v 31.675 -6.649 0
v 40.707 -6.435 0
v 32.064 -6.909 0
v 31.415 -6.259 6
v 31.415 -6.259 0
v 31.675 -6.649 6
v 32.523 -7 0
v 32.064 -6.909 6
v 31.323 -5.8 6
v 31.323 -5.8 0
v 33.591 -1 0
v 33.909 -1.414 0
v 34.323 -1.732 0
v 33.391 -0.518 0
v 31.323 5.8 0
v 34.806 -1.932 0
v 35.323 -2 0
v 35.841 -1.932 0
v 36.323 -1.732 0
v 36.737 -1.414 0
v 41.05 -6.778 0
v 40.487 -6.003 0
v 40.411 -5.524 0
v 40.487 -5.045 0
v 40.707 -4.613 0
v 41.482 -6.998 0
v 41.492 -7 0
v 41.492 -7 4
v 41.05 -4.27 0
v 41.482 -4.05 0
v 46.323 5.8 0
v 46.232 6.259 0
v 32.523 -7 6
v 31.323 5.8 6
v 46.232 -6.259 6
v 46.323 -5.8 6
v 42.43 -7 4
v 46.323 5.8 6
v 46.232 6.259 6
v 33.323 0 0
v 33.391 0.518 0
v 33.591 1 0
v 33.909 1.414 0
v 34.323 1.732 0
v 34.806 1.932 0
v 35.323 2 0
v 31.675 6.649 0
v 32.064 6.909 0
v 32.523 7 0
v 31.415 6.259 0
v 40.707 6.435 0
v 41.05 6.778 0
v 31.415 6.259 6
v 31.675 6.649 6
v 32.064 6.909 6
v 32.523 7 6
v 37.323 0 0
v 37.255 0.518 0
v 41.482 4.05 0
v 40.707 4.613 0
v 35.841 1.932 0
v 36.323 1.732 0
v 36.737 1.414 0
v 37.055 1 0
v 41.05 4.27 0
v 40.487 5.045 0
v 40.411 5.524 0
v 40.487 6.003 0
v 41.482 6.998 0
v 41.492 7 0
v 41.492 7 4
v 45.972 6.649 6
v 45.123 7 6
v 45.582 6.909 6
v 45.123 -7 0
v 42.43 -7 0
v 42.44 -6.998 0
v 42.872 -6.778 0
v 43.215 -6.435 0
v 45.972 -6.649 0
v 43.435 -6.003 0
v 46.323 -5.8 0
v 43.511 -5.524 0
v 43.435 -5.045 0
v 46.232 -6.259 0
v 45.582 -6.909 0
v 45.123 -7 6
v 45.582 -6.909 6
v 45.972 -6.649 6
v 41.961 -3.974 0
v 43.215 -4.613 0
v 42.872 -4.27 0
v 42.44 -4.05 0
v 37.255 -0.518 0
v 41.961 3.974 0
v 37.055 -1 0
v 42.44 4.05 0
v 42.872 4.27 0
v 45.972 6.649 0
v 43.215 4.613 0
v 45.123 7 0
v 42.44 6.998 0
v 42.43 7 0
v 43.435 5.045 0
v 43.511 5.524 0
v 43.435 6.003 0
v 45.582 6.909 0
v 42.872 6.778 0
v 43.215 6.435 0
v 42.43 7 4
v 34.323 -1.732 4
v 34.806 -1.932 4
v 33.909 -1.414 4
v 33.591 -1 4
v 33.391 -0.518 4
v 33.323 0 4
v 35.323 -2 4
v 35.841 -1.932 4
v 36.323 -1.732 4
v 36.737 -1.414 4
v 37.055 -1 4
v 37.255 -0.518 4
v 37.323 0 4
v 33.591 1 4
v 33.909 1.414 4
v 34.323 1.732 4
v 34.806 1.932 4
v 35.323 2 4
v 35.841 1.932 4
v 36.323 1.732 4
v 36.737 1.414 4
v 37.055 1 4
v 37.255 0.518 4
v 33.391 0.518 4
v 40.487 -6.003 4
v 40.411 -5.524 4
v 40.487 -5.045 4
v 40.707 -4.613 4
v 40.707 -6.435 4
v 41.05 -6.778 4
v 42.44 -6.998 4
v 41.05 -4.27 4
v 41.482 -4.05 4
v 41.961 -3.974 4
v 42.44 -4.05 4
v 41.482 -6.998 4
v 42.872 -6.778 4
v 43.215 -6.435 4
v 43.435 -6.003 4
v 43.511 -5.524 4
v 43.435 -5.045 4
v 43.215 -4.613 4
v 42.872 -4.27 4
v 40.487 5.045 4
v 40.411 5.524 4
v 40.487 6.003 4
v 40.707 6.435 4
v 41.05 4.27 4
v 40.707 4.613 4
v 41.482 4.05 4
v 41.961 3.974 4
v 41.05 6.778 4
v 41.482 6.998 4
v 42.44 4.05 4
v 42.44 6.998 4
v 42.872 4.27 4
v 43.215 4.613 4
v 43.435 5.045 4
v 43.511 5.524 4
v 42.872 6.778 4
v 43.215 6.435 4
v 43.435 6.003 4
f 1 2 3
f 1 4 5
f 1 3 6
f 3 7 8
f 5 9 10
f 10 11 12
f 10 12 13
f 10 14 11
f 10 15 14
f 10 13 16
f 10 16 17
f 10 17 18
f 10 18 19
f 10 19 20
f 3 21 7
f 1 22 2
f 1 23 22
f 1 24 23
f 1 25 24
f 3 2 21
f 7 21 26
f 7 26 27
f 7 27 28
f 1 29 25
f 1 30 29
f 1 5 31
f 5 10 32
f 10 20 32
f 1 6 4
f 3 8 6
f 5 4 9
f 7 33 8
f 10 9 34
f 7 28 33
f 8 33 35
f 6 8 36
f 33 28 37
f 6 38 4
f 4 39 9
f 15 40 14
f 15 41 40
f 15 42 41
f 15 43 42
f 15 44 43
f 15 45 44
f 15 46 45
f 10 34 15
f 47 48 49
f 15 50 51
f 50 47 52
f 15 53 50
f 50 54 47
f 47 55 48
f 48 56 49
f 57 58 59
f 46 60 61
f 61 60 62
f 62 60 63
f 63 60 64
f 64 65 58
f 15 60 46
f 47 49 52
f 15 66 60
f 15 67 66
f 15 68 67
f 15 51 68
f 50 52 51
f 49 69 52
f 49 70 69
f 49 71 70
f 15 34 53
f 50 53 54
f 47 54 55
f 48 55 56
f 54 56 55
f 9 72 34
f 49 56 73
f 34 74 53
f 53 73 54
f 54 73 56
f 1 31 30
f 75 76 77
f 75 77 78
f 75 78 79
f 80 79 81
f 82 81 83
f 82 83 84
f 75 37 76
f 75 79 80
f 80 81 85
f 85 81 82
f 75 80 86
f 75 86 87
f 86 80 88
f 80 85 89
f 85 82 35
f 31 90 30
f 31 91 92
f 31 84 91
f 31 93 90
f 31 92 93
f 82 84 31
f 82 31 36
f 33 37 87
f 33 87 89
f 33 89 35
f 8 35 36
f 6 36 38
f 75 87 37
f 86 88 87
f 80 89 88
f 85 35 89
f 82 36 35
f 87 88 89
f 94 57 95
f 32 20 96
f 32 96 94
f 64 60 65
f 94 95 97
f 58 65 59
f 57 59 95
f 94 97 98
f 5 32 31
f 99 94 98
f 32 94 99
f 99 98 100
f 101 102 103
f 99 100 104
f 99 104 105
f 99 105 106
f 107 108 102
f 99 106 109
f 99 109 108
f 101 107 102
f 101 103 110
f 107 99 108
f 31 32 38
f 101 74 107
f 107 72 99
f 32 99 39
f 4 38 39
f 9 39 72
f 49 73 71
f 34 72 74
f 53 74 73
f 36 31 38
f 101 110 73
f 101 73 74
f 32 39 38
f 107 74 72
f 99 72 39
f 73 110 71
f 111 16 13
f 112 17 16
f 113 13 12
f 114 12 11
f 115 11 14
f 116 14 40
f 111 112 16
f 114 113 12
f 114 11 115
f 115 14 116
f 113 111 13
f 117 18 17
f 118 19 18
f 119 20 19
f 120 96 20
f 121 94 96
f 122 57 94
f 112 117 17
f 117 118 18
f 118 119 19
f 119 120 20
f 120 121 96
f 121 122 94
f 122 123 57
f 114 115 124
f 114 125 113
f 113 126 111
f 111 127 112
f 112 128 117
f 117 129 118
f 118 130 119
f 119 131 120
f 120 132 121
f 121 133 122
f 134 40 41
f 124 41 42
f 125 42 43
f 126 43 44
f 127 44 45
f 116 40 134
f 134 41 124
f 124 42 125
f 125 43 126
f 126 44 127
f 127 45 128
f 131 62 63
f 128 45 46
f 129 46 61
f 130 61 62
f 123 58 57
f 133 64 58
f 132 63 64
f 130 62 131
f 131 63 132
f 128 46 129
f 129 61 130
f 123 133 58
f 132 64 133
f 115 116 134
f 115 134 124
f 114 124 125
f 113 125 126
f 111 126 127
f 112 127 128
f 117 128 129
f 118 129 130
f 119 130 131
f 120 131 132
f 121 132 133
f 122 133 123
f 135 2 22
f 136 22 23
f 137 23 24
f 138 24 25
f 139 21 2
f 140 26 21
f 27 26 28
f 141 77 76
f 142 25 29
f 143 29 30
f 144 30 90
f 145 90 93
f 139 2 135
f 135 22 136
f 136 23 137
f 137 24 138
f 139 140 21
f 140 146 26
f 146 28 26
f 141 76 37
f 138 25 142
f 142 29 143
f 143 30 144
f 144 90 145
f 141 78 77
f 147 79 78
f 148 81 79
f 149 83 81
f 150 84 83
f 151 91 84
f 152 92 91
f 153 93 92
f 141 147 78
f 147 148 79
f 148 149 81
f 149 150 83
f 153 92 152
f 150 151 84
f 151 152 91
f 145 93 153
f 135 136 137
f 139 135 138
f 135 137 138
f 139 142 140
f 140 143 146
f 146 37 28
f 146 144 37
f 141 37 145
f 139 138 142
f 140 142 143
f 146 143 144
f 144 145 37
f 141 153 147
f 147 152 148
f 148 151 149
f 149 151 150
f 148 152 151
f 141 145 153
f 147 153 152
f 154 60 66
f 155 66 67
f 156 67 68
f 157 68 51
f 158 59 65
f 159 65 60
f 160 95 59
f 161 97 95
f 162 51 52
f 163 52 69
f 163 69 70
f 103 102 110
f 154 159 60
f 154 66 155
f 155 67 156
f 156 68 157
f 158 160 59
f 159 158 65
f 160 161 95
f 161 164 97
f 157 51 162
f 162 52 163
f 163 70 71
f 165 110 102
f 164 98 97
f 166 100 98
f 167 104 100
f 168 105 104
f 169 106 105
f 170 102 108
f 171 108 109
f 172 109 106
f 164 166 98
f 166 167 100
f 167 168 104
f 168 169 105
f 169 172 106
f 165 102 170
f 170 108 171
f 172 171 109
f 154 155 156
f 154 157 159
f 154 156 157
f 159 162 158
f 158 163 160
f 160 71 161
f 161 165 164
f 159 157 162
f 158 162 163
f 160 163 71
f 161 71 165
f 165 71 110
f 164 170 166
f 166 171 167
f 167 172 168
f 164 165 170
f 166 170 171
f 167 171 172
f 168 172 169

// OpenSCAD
// H06_alpha_stop  (qty 2; frame: local; MJF PA12; print service OK)
// GENERATED by gen_halo_stl.py from halo_parts.py. Change numbers in halo_params.scad.
// Every dimension below is an expression of the names in halo_params.scad.
include <../halo_params.scad>

difference() {
    linear_extrude(height = 6, center = false) polygon([[R_STOP1 - 1 - 1.2 + 0, -7], [R_STOP1 - 1 - 1.2 + 0.45922, -6.908655], [R_STOP1 - 1 - 1.2 + 0.848528, -6.648528], [R_STOP1 - 1 - 1.2 + 1.108655, -6.25922], [R_STOP1 - 1 - 1.2 + 1.2, -5.8], [R_STOP1 - 1 - 1.2 + 1.2, 5.8], [R_STOP1 - 1 - 1.2 + 1.108655, 6.25922], [R_STOP1 - 1 - 1.2 + 0.848528, 6.648528], [R_STOP1 - 1 - 1.2 + 0.45922, 6.908655], [R_STOP1 - 1 - 1.2 + 0, 7], [R_STOP0 + 1 + 1.2 + 0, 7], [R_STOP0 + 1 + 1.2 + -0.45922, 6.908655], [R_STOP0 + 1 + 1.2 + -0.848528, 6.648528], [R_STOP0 + 1 + 1.2 + -1.108655, 6.25922], [R_STOP0 + 1 + 1.2 + -1.2, 5.8], [R_STOP0 + 1 + 1.2 + -1.2, -5.8], [R_STOP0 + 1 + 1.2 + -1.108655, -6.25922], [R_STOP0 + 1 + 1.2 + -0.848528, -6.648528], [R_STOP0 + 1 + 1.2 + -0.45922, -6.908655], [R_STOP0 + 1 + 1.2 + 0, -7]]);
    translate([R_STOP_SLOT, 0, -0.01]) {
        cylinder(h = M3_INS_L + 0.01, r = M3_INS_D / 2, center = false, $fn = 24);
    }
    translate([R_STOP_PIN * 0.991445, (-1 * R_STOP_PIN) * 0.130526, -0.01]) {
        cylinder(h = 4.01, r = 1.55, center = false, $fn = 20);
    }
    translate([R_STOP_PIN * 0.991445, (1 * R_STOP_PIN) * 0.130526, -0.01]) {
        cylinder(h = 4.01, r = 1.55, center = false, $fn = 20);
    }
}
